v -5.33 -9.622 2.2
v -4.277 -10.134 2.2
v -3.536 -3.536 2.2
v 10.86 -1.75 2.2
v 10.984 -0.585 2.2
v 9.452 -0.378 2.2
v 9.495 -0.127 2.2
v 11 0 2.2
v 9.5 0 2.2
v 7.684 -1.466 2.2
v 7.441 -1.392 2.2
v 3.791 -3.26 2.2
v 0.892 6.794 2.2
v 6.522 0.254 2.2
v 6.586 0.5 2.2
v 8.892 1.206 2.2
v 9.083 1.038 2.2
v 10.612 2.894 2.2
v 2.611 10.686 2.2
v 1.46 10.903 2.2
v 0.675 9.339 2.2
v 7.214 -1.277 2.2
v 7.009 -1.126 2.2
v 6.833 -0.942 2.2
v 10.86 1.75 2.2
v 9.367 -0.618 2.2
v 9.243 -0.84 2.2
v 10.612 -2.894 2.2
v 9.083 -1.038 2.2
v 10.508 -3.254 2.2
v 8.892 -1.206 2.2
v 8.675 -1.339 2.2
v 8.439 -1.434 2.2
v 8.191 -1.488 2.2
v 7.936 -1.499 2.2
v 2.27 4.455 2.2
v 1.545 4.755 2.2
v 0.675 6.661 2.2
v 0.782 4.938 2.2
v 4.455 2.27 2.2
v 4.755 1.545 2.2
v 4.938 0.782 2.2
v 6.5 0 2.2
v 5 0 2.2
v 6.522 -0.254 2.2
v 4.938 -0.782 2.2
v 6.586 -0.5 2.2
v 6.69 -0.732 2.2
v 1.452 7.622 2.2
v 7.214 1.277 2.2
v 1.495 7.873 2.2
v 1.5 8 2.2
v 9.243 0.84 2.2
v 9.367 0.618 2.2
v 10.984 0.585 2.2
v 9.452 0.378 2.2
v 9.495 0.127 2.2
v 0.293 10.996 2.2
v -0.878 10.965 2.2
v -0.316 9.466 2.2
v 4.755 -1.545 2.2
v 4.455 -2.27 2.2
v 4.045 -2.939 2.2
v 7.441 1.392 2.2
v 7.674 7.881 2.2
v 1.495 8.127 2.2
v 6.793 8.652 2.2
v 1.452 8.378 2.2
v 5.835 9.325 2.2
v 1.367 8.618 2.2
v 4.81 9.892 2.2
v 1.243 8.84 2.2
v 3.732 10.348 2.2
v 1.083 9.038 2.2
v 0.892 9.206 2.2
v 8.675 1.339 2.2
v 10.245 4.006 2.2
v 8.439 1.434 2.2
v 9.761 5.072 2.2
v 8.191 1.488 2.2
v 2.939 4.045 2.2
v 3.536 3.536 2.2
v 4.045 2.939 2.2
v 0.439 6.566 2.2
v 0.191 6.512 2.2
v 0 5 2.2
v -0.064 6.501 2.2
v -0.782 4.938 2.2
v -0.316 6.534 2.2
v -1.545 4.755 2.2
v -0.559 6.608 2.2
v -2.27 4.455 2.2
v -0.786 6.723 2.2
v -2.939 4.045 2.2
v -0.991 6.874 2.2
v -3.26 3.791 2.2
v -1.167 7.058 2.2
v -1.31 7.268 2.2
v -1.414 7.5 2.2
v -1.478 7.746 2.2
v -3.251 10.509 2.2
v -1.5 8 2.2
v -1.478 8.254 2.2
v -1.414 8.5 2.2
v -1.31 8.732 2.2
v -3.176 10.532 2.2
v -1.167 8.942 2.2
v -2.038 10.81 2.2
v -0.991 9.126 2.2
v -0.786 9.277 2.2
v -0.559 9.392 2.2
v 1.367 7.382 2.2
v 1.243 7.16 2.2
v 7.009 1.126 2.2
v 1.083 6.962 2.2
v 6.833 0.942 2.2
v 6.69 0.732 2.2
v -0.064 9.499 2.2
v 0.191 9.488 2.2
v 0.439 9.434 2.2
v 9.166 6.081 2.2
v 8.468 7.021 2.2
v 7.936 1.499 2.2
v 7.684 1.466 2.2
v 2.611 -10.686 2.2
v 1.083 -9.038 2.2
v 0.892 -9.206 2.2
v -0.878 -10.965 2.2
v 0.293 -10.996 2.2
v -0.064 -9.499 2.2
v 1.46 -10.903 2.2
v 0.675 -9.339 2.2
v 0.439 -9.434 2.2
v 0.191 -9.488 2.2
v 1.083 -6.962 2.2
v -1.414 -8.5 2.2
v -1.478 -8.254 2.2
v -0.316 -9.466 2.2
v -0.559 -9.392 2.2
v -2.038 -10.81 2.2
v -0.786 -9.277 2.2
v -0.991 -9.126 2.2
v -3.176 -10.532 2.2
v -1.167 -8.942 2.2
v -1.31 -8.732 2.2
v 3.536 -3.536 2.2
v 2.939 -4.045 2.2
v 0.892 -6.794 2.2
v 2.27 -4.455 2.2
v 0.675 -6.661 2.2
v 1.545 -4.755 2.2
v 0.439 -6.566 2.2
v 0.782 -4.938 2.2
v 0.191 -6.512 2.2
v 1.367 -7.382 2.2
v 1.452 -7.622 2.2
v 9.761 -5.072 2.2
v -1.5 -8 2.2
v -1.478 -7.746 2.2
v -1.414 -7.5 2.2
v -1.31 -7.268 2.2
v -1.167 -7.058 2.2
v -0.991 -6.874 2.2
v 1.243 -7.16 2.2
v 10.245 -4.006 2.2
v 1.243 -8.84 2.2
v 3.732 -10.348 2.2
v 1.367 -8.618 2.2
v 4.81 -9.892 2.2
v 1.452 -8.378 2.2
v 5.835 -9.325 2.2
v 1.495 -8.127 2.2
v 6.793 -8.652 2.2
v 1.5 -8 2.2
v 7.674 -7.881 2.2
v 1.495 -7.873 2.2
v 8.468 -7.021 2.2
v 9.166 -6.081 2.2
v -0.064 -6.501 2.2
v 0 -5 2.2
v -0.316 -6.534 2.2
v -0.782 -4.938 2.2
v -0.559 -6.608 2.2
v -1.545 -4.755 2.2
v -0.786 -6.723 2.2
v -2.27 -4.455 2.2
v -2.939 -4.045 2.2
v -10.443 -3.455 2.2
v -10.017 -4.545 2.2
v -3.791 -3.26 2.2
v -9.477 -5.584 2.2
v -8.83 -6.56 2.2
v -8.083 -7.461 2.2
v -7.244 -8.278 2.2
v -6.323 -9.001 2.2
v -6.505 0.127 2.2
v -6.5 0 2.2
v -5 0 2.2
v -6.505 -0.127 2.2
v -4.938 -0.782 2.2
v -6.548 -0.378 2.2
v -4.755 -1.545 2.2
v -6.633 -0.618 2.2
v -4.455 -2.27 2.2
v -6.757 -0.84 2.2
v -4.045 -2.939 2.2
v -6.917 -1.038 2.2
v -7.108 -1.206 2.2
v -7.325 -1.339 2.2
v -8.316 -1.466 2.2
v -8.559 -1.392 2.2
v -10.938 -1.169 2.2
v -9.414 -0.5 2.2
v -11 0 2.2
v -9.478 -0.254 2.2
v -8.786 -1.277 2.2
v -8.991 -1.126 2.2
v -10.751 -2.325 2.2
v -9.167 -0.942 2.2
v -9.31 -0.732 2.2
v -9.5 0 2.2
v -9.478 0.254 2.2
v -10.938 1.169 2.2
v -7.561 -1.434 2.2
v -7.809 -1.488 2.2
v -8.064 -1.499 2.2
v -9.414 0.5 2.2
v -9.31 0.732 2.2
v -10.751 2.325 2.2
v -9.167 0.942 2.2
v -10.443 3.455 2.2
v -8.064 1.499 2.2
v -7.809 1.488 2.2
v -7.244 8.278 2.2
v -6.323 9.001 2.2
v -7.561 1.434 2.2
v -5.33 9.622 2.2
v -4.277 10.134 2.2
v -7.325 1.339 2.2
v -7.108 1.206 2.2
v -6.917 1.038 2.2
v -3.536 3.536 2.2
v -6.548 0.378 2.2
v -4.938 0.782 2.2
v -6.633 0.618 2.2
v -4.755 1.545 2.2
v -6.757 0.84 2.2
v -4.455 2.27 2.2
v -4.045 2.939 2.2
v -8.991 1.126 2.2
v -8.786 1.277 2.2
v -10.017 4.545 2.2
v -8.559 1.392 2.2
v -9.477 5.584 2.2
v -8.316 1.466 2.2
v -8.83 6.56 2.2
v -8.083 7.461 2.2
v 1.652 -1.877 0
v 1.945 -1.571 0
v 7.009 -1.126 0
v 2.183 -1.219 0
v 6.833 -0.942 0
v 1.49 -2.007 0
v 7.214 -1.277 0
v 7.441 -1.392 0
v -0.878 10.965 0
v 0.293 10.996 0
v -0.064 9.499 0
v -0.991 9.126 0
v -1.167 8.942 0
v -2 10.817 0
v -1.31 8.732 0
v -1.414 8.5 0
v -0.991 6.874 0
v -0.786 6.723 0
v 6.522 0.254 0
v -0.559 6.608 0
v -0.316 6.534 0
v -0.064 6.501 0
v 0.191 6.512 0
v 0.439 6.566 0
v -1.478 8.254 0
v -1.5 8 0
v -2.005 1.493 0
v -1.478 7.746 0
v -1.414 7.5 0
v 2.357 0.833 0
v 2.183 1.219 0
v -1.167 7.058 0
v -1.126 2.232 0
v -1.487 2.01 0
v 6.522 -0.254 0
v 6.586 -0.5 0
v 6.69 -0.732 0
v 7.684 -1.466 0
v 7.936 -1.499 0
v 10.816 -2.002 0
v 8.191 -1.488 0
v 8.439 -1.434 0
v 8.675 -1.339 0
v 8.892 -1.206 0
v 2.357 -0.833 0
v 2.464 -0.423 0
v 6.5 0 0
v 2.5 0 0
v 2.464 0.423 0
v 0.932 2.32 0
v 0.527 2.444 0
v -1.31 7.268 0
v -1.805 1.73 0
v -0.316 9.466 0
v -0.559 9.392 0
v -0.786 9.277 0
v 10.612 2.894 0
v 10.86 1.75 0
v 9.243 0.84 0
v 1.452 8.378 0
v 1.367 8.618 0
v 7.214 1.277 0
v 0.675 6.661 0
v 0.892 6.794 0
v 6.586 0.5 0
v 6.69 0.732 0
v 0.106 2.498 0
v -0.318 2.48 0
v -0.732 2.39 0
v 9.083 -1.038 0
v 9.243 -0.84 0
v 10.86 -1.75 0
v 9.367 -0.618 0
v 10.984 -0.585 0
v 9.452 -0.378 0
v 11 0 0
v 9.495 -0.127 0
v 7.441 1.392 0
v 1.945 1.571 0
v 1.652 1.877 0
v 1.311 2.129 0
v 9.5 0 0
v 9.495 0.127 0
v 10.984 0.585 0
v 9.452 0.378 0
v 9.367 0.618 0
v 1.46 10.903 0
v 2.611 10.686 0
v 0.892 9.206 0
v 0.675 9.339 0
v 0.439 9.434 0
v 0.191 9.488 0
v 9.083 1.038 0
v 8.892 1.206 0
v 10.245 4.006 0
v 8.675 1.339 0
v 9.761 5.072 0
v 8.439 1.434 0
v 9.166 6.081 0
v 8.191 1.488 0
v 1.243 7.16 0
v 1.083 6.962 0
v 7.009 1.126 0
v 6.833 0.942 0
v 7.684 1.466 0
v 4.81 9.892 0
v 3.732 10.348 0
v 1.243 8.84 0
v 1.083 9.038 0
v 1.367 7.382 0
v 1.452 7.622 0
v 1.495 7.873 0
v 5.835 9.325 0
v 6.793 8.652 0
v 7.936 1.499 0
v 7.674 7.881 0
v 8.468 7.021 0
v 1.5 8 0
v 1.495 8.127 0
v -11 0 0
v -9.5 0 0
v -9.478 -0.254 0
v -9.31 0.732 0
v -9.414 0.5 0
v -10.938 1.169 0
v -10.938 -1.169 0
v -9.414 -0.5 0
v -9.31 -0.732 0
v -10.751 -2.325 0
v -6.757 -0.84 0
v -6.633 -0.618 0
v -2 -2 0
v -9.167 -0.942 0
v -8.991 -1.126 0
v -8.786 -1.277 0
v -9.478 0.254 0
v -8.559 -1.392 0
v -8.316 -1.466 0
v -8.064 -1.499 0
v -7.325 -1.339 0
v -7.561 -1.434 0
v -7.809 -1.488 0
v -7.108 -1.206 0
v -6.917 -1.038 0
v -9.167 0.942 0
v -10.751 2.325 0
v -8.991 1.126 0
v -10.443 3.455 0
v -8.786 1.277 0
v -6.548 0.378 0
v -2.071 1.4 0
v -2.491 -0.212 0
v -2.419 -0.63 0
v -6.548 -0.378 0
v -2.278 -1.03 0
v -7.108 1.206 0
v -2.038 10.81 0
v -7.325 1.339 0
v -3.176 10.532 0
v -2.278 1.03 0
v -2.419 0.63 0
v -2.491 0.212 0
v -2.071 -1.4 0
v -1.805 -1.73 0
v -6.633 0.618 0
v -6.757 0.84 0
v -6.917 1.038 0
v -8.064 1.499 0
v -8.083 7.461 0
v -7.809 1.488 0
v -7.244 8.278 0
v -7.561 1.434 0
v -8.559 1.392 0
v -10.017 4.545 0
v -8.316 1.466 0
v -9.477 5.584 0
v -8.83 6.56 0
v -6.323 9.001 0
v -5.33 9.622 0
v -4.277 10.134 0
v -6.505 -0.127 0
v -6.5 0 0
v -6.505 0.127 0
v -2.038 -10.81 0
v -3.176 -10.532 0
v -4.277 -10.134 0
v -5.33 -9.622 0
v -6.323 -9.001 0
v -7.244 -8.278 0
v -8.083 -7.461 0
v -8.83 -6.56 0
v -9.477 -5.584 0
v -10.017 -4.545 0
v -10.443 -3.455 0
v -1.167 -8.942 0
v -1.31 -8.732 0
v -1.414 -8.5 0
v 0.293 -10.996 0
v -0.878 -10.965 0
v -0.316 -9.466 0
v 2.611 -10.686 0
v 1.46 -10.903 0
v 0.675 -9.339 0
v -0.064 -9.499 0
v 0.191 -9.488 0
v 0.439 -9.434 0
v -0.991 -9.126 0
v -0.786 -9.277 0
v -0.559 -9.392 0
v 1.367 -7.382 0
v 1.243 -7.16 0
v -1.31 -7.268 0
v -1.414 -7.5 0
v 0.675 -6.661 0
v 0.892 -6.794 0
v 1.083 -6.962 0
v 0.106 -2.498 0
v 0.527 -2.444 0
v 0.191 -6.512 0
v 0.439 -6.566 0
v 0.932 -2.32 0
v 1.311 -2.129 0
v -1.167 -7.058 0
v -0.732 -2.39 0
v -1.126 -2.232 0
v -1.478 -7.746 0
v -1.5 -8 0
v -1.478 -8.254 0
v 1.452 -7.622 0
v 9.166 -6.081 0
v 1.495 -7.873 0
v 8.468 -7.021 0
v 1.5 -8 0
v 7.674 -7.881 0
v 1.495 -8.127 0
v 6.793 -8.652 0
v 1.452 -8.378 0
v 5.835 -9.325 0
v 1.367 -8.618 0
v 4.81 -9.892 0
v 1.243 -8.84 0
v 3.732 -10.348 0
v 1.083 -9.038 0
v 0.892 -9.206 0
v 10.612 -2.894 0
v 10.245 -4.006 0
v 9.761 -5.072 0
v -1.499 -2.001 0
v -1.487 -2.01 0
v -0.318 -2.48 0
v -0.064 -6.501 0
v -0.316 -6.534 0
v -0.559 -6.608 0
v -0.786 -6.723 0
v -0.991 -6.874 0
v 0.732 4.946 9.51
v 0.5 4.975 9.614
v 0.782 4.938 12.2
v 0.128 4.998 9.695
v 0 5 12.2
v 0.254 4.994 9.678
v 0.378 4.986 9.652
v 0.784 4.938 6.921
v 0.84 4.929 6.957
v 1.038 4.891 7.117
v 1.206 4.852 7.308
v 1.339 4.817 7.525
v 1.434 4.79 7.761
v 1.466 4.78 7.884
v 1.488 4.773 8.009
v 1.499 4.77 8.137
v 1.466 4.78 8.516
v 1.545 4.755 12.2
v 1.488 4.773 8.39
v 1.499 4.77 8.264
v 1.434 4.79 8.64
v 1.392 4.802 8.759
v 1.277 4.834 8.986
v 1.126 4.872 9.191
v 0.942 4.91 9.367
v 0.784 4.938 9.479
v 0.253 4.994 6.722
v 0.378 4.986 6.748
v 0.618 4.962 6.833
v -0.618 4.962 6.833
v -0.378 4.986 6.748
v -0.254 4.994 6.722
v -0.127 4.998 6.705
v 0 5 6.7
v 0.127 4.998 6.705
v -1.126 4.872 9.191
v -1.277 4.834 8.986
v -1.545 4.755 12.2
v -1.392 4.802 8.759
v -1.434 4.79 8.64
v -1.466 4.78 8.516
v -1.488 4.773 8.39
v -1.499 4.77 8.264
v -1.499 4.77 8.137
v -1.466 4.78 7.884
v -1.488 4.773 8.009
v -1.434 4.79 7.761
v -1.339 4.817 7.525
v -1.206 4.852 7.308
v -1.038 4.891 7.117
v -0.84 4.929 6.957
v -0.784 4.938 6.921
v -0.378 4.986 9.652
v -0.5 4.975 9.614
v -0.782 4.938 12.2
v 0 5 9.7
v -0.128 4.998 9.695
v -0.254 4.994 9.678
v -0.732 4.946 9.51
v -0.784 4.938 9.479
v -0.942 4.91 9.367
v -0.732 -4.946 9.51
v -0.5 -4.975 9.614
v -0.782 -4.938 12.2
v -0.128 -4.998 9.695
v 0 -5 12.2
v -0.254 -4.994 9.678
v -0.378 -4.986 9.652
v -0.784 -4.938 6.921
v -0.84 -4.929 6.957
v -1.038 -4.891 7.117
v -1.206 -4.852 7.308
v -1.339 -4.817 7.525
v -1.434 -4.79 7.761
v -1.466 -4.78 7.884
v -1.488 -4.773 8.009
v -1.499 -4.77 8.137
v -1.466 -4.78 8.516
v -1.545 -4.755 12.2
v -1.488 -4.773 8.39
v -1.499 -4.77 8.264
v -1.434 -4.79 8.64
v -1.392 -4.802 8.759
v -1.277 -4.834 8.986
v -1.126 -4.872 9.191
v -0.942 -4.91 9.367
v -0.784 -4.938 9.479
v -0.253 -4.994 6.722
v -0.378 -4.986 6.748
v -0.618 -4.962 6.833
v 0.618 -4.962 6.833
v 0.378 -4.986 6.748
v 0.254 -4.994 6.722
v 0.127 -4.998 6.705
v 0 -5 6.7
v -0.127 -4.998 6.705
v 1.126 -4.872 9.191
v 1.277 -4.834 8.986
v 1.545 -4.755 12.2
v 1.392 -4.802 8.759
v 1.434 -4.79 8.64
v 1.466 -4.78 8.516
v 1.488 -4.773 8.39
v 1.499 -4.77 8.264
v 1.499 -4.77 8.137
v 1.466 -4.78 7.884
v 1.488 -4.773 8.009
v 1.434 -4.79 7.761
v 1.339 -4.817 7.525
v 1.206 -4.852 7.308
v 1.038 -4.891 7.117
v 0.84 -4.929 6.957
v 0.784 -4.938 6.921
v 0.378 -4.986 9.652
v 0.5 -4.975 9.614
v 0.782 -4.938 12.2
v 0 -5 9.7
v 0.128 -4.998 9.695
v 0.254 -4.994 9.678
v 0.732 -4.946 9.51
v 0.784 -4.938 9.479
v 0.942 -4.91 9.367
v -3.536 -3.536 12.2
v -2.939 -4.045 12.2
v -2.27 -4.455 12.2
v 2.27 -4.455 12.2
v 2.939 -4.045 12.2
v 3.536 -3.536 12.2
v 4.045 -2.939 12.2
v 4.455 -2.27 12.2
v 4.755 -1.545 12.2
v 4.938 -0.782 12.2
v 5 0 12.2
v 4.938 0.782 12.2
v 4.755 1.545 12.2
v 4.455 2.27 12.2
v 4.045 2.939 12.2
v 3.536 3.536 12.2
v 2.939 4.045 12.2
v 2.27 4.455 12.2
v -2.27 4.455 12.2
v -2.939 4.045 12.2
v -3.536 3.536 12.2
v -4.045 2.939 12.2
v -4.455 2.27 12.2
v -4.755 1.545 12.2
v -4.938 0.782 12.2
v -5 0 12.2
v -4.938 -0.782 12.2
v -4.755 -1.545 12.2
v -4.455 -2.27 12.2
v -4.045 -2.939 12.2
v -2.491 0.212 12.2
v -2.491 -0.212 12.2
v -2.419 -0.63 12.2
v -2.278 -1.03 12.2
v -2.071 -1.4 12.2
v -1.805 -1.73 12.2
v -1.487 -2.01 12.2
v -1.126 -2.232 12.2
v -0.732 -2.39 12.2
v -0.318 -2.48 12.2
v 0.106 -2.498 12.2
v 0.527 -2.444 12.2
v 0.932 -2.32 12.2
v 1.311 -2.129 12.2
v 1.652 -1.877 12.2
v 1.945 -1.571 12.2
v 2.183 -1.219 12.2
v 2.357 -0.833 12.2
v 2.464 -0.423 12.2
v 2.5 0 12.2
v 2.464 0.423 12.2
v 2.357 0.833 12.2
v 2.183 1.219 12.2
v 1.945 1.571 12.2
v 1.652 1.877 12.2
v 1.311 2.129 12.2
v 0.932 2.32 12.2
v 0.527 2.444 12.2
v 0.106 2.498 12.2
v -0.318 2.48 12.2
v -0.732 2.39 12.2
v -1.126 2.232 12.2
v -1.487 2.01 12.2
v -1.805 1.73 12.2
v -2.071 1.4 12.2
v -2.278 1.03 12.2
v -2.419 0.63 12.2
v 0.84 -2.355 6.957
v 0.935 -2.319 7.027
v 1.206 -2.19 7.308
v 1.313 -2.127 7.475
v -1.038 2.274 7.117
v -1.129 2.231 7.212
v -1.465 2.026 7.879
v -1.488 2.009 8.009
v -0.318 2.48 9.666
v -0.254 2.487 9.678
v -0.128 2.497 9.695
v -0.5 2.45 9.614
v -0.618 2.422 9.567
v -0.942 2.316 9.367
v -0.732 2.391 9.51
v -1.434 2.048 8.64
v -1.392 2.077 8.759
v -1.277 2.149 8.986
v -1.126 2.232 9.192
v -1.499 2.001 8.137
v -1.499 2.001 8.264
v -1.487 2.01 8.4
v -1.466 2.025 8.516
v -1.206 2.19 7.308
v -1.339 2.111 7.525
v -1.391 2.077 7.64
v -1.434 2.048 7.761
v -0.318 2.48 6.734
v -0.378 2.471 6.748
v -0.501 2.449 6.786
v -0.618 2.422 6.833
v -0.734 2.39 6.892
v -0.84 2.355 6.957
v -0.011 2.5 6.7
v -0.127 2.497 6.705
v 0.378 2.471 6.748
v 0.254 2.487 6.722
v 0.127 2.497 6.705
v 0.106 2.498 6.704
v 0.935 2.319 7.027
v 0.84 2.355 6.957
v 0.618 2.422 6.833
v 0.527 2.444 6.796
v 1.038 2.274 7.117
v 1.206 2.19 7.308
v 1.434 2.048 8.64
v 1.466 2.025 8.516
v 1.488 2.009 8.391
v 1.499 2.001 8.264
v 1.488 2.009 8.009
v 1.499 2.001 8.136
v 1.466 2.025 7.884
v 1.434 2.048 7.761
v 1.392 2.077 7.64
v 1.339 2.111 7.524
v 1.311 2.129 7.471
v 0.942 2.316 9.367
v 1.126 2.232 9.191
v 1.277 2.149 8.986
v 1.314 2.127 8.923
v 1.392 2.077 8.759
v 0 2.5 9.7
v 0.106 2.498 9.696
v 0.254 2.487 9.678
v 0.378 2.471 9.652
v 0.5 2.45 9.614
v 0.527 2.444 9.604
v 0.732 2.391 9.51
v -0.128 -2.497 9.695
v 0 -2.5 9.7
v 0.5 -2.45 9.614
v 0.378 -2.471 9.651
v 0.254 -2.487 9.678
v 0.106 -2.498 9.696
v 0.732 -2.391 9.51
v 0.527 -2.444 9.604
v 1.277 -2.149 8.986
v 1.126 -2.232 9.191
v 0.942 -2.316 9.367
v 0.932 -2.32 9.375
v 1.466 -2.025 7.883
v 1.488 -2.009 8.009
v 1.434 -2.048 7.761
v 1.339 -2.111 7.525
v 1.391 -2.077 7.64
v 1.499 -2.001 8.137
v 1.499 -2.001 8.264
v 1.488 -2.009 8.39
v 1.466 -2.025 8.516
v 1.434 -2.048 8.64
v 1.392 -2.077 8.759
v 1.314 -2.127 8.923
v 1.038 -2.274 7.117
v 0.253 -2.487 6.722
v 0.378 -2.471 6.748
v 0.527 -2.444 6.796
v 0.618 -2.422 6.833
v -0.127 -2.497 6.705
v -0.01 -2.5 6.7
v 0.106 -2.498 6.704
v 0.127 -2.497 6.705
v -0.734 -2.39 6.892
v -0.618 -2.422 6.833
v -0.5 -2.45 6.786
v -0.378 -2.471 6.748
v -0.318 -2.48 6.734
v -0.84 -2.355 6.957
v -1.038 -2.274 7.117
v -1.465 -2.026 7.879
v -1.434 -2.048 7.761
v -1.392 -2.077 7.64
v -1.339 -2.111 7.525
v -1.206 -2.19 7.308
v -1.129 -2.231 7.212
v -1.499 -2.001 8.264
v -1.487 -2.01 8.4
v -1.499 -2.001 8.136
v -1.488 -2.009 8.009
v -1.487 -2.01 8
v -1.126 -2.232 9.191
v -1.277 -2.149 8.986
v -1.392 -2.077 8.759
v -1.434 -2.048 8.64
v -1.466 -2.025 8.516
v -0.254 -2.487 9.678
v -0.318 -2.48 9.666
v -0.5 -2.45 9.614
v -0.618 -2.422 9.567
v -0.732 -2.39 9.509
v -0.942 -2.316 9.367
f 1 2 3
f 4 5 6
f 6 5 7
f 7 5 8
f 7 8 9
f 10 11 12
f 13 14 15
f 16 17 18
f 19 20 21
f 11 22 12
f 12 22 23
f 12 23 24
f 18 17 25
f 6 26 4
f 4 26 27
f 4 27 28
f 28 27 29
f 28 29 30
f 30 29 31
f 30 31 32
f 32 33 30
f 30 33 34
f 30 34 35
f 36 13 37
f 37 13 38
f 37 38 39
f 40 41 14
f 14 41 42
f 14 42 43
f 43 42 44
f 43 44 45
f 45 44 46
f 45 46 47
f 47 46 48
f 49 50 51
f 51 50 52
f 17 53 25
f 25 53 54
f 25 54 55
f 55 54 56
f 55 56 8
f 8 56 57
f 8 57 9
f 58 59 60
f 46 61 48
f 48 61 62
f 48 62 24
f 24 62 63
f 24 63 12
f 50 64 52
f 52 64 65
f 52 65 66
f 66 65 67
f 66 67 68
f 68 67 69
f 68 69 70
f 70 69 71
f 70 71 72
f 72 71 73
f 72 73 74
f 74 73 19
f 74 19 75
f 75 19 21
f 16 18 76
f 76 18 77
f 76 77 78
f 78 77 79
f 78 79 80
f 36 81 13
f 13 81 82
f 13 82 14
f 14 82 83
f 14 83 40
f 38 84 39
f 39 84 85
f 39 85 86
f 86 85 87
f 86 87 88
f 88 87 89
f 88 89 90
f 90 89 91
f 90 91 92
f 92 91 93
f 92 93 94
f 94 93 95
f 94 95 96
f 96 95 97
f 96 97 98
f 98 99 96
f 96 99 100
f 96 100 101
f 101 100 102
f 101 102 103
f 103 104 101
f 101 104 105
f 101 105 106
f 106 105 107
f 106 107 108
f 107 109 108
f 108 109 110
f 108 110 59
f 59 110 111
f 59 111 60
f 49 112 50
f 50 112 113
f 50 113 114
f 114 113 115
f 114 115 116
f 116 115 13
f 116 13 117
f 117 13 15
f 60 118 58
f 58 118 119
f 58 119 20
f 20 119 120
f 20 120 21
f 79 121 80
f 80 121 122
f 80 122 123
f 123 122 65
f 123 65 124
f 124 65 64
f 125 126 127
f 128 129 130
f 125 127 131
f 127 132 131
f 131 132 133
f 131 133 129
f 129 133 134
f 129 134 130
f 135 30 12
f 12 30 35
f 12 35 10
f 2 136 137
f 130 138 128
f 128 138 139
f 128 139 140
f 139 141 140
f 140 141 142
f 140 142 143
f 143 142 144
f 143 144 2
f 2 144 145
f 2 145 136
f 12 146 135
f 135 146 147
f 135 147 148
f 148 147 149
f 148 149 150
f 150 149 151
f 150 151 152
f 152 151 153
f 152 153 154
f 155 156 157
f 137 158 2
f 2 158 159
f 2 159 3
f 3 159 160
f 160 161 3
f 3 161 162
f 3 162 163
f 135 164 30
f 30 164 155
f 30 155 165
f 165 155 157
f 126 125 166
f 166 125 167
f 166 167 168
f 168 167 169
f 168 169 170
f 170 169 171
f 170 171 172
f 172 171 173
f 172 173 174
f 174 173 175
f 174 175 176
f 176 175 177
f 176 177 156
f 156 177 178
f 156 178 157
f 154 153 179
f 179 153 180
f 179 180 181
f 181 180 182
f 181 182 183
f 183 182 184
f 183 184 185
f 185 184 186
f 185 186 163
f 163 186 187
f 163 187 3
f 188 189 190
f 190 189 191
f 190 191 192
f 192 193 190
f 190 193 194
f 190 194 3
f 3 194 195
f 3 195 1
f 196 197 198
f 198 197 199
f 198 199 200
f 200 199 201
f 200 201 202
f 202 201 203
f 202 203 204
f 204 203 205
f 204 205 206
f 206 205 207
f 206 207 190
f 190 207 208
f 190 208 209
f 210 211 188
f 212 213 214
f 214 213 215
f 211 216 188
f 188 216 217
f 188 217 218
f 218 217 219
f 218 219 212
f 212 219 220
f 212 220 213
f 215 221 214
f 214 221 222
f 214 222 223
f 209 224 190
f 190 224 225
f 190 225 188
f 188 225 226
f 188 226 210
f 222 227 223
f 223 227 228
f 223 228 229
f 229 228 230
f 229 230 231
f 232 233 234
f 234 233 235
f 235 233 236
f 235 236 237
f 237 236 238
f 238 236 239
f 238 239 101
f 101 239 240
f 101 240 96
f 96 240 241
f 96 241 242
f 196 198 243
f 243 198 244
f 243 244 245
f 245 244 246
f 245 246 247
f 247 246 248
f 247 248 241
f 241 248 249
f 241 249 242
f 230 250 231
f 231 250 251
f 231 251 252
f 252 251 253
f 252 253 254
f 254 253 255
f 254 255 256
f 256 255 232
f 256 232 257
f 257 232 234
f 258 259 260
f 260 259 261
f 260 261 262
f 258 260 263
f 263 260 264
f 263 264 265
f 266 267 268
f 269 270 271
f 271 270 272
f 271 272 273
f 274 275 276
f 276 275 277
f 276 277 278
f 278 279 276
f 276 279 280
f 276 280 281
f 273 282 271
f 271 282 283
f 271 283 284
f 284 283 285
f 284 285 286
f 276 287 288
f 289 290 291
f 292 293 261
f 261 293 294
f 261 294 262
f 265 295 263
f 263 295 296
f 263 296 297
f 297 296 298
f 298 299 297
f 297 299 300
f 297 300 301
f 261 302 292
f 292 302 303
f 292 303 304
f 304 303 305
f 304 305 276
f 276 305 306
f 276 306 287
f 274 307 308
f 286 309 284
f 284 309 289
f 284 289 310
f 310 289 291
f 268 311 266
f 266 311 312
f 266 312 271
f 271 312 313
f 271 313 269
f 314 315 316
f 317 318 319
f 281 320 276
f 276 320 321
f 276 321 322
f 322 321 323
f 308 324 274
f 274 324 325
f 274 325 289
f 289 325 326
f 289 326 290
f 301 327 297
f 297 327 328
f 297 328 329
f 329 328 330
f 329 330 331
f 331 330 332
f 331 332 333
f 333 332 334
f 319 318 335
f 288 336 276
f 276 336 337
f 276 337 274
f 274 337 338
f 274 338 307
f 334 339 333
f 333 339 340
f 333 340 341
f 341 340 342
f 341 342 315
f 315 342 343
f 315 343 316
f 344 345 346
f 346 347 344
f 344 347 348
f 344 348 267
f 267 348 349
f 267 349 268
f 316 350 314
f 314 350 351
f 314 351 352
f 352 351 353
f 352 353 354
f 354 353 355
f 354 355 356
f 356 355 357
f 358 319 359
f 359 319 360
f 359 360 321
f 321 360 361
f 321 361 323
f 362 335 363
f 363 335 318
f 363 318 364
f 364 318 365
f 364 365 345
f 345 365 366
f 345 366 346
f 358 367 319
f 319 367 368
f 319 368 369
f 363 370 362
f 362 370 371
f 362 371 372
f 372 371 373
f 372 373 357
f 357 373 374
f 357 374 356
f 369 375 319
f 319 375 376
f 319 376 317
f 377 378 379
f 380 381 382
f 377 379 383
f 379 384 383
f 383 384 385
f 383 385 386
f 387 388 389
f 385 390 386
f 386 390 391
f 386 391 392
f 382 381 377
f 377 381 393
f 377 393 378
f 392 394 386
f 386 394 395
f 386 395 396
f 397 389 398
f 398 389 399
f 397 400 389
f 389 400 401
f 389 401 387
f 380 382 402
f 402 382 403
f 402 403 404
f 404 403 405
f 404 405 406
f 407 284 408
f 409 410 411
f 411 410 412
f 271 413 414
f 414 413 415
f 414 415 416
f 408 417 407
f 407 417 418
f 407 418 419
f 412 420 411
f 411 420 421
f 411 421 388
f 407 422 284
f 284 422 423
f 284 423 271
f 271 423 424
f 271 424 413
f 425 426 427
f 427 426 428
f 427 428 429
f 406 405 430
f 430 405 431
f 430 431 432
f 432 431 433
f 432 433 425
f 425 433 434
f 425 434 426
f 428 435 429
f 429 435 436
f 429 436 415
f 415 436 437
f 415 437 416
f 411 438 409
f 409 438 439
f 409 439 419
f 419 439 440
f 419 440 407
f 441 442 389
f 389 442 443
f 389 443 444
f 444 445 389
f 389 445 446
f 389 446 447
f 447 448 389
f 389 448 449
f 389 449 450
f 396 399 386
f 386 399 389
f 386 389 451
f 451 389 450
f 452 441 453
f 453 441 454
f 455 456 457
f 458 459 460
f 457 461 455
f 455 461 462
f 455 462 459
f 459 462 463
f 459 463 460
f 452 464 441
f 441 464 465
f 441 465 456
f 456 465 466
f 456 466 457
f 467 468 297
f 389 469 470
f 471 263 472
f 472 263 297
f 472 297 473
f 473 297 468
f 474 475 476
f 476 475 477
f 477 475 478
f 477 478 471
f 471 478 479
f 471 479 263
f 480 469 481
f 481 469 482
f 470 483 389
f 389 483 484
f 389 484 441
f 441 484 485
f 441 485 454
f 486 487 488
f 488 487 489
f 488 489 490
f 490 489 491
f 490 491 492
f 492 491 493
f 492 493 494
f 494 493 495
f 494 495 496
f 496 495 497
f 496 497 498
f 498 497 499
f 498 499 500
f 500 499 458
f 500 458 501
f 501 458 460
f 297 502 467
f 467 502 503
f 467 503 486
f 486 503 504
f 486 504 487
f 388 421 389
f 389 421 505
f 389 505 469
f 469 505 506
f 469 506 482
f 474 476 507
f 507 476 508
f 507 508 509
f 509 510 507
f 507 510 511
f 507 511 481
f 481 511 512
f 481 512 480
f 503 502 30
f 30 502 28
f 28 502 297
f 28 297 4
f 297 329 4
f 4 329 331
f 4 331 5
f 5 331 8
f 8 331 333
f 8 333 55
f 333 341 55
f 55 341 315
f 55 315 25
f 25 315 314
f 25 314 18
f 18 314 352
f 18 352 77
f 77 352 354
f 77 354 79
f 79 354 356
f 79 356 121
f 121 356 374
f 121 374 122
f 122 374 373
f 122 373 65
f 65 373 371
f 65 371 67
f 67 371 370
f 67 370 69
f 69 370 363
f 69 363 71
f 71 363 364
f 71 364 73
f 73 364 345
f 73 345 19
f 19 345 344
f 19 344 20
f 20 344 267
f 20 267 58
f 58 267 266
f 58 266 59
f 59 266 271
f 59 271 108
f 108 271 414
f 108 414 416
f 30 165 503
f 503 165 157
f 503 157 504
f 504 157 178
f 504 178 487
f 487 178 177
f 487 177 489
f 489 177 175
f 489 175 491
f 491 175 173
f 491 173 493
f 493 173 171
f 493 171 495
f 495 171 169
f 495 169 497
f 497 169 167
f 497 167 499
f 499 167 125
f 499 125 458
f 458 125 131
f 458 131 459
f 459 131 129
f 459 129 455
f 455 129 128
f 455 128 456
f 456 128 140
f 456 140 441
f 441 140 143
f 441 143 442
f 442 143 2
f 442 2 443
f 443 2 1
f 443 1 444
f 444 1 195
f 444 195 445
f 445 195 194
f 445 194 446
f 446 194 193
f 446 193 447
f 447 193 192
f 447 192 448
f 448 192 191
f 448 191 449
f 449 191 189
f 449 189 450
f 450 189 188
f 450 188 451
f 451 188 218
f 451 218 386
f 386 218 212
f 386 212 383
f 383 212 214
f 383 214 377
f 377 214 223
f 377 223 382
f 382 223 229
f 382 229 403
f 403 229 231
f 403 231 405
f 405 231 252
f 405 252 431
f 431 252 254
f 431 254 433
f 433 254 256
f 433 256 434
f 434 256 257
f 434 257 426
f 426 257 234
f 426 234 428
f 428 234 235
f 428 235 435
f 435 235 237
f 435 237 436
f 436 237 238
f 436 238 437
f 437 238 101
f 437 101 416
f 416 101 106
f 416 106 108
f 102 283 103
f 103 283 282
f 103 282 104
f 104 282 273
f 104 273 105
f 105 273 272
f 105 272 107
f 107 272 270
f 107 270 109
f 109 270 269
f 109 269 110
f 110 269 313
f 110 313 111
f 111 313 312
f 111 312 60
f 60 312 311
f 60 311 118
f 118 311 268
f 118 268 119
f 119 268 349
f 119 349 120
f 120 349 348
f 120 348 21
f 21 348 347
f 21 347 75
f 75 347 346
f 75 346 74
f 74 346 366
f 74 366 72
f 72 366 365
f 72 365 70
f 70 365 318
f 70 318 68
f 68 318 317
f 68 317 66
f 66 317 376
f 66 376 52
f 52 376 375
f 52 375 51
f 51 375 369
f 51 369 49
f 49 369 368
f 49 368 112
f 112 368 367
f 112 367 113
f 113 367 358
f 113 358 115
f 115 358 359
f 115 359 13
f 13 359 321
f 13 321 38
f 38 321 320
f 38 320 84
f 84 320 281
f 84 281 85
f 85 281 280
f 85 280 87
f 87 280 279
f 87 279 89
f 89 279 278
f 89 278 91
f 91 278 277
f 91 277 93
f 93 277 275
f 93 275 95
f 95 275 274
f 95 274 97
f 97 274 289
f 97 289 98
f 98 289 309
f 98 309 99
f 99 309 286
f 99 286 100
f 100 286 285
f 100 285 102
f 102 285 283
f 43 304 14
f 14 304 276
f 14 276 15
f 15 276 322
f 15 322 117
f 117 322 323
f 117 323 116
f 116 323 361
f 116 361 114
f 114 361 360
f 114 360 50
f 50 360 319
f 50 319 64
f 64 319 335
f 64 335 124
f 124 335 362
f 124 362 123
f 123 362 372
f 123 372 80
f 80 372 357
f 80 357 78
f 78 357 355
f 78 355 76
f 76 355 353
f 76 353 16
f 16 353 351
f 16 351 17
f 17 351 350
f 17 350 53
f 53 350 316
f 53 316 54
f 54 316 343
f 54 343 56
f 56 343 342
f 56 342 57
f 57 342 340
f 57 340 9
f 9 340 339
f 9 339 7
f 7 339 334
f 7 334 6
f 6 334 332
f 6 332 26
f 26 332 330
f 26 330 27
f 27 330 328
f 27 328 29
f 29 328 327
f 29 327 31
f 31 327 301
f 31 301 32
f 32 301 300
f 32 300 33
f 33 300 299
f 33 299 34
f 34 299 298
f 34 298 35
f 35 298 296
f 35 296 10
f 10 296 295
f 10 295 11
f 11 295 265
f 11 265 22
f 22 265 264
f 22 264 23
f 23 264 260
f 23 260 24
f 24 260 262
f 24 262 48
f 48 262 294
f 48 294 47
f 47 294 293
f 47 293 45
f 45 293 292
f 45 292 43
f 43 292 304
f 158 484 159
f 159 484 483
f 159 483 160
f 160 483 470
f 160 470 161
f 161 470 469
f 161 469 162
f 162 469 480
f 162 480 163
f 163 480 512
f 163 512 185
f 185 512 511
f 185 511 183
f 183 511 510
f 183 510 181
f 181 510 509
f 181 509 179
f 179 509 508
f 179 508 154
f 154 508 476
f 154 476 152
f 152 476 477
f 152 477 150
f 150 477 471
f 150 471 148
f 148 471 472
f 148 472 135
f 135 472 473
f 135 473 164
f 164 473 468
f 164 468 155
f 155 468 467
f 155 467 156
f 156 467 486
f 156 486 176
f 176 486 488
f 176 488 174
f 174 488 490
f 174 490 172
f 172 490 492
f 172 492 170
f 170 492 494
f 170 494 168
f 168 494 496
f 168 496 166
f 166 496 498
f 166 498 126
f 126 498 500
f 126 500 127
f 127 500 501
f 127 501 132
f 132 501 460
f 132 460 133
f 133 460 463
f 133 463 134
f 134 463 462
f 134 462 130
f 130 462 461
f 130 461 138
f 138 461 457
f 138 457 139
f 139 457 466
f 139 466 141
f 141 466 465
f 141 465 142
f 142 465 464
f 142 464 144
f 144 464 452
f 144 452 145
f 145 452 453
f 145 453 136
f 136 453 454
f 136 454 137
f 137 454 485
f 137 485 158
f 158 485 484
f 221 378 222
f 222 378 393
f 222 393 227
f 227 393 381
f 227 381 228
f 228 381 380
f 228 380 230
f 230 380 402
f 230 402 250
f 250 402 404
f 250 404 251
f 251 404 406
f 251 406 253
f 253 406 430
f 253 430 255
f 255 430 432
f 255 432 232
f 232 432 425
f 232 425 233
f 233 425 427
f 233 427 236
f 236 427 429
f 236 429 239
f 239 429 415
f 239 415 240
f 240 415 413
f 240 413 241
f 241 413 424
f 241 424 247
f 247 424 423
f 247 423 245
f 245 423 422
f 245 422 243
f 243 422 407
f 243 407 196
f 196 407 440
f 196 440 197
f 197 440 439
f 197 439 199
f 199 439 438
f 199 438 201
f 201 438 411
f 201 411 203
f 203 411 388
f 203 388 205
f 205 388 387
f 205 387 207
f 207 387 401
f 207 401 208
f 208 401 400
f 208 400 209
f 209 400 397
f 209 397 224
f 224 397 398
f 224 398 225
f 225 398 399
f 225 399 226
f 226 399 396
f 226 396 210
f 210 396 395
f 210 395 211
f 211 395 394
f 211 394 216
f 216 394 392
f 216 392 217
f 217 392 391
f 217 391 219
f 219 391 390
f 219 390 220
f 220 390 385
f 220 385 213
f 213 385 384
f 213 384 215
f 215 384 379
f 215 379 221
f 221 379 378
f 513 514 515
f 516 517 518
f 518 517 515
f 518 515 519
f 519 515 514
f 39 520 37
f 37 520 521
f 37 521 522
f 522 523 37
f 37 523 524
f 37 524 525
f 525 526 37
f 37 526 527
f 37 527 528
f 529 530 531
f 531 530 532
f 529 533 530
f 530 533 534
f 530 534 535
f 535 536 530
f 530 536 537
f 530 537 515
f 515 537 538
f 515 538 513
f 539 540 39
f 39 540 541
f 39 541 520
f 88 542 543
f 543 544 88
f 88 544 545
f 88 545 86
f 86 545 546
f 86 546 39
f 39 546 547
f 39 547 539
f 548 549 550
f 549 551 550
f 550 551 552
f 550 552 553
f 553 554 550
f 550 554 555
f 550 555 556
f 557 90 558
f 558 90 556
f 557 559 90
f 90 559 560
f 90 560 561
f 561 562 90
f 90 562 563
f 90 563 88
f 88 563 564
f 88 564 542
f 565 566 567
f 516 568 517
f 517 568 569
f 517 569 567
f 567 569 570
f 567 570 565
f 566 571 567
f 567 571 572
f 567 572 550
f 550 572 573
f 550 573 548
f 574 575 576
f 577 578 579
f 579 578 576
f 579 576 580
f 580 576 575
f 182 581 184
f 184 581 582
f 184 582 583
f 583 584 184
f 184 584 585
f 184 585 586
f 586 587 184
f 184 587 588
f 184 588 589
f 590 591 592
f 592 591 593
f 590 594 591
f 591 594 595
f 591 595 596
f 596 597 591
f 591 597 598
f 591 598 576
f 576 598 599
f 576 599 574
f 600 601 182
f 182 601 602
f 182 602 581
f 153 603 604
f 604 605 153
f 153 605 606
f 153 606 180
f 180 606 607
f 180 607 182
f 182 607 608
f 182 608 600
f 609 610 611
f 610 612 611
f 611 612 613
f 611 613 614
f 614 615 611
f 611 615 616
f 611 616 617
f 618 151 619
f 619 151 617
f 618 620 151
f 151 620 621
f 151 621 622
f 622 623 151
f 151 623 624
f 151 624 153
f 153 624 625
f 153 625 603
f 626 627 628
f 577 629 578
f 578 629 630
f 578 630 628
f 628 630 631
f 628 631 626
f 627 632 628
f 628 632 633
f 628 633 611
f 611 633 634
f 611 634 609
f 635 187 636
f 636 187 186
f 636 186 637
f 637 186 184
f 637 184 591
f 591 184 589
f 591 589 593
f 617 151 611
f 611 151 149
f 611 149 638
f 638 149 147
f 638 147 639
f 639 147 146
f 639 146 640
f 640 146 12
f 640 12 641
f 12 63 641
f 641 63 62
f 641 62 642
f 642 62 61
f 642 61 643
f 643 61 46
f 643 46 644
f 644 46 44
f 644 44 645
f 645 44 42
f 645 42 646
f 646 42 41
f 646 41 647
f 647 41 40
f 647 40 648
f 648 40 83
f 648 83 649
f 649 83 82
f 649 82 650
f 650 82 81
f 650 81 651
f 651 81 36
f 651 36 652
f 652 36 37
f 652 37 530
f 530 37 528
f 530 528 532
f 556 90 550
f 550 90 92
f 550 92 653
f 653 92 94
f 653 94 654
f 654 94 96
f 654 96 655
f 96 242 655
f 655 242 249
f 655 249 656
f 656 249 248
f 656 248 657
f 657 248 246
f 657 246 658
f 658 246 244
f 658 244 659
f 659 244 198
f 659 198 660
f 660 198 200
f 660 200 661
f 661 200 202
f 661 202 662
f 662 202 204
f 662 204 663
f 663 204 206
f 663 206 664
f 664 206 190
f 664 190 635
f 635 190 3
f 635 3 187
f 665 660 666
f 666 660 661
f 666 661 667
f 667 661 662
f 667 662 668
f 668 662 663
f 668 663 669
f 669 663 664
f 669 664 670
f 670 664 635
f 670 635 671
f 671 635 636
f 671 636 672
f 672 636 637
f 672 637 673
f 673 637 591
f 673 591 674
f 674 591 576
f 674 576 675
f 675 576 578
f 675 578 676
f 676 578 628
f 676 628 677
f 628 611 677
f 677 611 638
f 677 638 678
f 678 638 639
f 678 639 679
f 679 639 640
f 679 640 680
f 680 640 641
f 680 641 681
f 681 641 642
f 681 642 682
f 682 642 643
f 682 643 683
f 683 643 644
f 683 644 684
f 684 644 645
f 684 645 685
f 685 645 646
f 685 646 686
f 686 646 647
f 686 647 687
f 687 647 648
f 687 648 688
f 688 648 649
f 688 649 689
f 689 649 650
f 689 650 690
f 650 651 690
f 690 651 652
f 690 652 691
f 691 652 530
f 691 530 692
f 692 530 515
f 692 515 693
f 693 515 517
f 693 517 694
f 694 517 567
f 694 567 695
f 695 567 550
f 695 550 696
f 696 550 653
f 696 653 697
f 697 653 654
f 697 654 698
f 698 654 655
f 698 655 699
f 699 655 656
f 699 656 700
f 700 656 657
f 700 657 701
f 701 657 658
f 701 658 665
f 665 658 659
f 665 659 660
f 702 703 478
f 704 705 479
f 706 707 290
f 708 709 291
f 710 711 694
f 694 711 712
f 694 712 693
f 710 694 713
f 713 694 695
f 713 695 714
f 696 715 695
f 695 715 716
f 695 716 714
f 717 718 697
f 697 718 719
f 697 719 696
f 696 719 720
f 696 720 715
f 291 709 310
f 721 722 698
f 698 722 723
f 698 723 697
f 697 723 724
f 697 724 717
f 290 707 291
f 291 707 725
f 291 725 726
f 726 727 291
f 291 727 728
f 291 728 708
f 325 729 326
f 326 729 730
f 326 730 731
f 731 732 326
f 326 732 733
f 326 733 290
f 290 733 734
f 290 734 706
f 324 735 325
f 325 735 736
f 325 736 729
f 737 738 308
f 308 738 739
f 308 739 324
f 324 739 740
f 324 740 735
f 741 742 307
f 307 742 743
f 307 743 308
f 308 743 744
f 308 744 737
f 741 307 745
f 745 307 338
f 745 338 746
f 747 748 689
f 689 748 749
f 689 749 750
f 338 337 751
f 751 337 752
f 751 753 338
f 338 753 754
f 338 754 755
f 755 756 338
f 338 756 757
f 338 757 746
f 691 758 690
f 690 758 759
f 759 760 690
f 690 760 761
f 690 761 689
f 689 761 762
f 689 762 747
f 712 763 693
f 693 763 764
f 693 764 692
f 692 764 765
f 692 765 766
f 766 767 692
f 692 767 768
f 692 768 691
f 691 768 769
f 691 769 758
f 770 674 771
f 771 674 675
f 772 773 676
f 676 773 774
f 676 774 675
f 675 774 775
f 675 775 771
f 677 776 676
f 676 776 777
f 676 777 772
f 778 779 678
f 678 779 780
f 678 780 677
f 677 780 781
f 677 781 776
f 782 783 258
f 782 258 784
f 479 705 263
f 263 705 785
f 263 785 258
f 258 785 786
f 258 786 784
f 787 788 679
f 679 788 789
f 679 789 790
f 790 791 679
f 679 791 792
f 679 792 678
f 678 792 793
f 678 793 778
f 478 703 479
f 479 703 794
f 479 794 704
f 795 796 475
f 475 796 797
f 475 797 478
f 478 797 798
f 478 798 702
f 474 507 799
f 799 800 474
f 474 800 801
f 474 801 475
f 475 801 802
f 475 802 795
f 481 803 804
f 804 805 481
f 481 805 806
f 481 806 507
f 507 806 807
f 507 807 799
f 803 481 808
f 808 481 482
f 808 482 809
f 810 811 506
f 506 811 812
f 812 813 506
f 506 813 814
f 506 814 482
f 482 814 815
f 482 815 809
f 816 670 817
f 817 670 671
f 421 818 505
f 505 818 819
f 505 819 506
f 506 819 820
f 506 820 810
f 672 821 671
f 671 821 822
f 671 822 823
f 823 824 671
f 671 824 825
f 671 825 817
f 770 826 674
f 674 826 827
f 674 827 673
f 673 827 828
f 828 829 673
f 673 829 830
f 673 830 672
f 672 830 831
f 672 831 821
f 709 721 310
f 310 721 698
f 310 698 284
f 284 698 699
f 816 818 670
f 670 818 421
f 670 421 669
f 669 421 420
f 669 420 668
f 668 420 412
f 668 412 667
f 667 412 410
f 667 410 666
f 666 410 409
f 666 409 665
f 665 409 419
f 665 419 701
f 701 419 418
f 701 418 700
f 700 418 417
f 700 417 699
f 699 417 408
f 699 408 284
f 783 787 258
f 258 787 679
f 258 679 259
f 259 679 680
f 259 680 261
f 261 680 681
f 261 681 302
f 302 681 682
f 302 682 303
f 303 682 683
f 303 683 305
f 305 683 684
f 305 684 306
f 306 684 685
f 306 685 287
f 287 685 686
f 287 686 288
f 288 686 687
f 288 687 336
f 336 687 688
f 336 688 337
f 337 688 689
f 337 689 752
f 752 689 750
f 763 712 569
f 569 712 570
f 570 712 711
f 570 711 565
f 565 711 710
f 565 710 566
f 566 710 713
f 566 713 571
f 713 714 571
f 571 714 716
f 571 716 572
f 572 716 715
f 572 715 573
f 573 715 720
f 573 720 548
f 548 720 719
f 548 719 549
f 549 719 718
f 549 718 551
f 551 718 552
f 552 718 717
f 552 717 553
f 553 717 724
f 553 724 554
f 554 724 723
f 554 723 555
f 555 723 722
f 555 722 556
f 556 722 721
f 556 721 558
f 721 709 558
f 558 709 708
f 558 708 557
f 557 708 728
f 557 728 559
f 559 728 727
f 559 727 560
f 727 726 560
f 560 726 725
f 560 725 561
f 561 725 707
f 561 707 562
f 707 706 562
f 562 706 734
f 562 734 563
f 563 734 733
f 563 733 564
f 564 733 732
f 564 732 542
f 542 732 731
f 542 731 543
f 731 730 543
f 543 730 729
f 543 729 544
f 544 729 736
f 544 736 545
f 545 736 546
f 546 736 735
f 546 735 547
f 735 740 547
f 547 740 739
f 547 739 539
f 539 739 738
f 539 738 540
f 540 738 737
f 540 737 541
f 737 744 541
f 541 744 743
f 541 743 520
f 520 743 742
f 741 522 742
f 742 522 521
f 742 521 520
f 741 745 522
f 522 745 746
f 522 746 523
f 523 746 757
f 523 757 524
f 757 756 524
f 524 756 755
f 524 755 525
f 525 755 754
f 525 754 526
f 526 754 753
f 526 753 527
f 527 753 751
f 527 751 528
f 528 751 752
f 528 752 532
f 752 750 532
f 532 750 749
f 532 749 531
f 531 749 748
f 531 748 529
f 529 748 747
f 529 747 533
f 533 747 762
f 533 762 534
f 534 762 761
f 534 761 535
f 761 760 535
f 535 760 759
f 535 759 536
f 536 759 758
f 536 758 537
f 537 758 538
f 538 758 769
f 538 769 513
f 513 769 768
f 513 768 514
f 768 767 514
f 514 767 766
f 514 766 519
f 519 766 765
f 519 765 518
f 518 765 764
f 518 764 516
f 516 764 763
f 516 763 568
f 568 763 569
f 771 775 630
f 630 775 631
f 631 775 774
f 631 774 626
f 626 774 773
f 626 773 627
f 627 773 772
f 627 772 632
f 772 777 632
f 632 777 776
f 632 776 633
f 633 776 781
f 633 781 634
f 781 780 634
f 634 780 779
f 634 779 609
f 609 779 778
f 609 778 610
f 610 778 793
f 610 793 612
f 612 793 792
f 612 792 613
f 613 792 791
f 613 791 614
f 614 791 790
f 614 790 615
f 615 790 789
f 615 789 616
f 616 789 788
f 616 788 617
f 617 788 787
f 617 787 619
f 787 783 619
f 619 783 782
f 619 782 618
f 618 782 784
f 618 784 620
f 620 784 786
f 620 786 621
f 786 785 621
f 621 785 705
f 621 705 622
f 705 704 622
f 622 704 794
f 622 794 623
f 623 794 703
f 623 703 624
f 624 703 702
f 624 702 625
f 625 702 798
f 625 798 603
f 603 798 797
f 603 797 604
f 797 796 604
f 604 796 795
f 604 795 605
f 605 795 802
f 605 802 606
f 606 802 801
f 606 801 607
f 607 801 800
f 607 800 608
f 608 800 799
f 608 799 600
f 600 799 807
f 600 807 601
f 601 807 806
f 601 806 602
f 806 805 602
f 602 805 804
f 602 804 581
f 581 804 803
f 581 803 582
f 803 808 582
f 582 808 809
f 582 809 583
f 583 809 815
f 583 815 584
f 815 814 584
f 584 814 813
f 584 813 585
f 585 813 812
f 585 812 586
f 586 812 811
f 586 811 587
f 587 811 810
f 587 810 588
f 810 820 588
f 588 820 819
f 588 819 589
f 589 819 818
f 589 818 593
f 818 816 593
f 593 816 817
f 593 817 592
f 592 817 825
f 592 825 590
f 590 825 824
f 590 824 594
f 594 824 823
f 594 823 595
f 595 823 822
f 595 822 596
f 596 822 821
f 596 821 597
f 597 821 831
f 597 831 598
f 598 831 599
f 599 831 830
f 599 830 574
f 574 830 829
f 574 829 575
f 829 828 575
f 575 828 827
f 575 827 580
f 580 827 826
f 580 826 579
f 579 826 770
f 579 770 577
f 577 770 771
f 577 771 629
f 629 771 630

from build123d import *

# Parameters (mm, degrees)
SKETCH_1_R               = 11
SKETCH_1_R_2             = 1.5
EXTRUDE_1_DEPTH          = 2.2
SKETCH_2_R               = 5
EXTRUDE_2_DEPTH          = 10
SKETCH_3_R               = 2.5
CUT_EXTRUDE_1_DEPTH      = 20.769673745
CUT_EXTRUDE_2_DEPTH      = 20.769673745
CUT_EXTRUDE_2_DEPTH_BACK = 20.769673745


with BuildPart() as part:
    # 草图1 → 凸台-拉伸1 (new body)
    with BuildSketch(Plane.XY):
        Circle(SKETCH_1_R)
        with Locations((0, 8)):
            Circle(SKETCH_1_R_2, mode=Mode.SUBTRACT)
        with Locations((8, 0)):
            Circle(SKETCH_1_R_2, mode=Mode.SUBTRACT)
        with Locations((0, -8)):
            Circle(SKETCH_1_R_2, mode=Mode.SUBTRACT)
        with Locations((-8, 0)):
            Circle(SKETCH_1_R_2, mode=Mode.SUBTRACT)
    extrude(amount=EXTRUDE_1_DEPTH)

    # 草图2 → 凸台-拉伸2 (add)
    with BuildSketch(Plane.XY.offset(2.2)):
        Circle(SKETCH_2_R)
    extrude(amount=EXTRUDE_2_DEPTH)

    # 草图3 → 切除-拉伸1 (cut, through all)
    with BuildSketch(Plane.XY.offset(12.2)):
        Circle(SKETCH_3_R)
    extrude(amount=-CUT_EXTRUDE_1_DEPTH, mode=Mode.SUBTRACT)

    # 草图4 → 切除-拉伸2 (cut, two sides: drawn at the far end of the back side and taken through both)
    with BuildSketch(Plane(origin=(0, 0, 0), x_dir=(1, 0, 0), z_dir=(0, 1, 0)).offset(-CUT_EXTRUDE_2_DEPTH_BACK)):
        with BuildLine():
            ThreePointArc((1.5, -8.2), (1.060660172, -7.139339828), (0, -6.7))
            Line((0, -6.7), (0, -9.7))
            ThreePointArc((0, -9.7), (1.060660172, -9.260660172), (1.5, -8.2))
        make_face()
        with BuildLine():
            Line((0, -9.7), (0, -6.7))
            ThreePointArc((0, -6.7), (-1.5, -8.2), (0, -9.7))
        make_face()
    extrude(amount=CUT_EXTRUDE_2_DEPTH + CUT_EXTRUDE_2_DEPTH_BACK, mode=Mode.SUBTRACT)


solid = part.part
